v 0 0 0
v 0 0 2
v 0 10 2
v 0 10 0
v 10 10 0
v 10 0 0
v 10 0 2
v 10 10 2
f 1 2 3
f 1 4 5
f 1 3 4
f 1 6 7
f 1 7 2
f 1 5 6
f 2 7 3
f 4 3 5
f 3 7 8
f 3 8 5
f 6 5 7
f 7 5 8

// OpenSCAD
/* Warning, this is a very basic generator with a lot of approximation 
input data : [PQFP, T7X, 10x10x2mm, 44, , A, C04-00119A]
generated by com.zoubworld.electronics.cad.model3d.Basic
Date : Sun Feb 15 10:50:48 CET 2026
*/

//body
color("black")
translate([0,0,0])
cube([10.0,10.0,2.0], center=false);
